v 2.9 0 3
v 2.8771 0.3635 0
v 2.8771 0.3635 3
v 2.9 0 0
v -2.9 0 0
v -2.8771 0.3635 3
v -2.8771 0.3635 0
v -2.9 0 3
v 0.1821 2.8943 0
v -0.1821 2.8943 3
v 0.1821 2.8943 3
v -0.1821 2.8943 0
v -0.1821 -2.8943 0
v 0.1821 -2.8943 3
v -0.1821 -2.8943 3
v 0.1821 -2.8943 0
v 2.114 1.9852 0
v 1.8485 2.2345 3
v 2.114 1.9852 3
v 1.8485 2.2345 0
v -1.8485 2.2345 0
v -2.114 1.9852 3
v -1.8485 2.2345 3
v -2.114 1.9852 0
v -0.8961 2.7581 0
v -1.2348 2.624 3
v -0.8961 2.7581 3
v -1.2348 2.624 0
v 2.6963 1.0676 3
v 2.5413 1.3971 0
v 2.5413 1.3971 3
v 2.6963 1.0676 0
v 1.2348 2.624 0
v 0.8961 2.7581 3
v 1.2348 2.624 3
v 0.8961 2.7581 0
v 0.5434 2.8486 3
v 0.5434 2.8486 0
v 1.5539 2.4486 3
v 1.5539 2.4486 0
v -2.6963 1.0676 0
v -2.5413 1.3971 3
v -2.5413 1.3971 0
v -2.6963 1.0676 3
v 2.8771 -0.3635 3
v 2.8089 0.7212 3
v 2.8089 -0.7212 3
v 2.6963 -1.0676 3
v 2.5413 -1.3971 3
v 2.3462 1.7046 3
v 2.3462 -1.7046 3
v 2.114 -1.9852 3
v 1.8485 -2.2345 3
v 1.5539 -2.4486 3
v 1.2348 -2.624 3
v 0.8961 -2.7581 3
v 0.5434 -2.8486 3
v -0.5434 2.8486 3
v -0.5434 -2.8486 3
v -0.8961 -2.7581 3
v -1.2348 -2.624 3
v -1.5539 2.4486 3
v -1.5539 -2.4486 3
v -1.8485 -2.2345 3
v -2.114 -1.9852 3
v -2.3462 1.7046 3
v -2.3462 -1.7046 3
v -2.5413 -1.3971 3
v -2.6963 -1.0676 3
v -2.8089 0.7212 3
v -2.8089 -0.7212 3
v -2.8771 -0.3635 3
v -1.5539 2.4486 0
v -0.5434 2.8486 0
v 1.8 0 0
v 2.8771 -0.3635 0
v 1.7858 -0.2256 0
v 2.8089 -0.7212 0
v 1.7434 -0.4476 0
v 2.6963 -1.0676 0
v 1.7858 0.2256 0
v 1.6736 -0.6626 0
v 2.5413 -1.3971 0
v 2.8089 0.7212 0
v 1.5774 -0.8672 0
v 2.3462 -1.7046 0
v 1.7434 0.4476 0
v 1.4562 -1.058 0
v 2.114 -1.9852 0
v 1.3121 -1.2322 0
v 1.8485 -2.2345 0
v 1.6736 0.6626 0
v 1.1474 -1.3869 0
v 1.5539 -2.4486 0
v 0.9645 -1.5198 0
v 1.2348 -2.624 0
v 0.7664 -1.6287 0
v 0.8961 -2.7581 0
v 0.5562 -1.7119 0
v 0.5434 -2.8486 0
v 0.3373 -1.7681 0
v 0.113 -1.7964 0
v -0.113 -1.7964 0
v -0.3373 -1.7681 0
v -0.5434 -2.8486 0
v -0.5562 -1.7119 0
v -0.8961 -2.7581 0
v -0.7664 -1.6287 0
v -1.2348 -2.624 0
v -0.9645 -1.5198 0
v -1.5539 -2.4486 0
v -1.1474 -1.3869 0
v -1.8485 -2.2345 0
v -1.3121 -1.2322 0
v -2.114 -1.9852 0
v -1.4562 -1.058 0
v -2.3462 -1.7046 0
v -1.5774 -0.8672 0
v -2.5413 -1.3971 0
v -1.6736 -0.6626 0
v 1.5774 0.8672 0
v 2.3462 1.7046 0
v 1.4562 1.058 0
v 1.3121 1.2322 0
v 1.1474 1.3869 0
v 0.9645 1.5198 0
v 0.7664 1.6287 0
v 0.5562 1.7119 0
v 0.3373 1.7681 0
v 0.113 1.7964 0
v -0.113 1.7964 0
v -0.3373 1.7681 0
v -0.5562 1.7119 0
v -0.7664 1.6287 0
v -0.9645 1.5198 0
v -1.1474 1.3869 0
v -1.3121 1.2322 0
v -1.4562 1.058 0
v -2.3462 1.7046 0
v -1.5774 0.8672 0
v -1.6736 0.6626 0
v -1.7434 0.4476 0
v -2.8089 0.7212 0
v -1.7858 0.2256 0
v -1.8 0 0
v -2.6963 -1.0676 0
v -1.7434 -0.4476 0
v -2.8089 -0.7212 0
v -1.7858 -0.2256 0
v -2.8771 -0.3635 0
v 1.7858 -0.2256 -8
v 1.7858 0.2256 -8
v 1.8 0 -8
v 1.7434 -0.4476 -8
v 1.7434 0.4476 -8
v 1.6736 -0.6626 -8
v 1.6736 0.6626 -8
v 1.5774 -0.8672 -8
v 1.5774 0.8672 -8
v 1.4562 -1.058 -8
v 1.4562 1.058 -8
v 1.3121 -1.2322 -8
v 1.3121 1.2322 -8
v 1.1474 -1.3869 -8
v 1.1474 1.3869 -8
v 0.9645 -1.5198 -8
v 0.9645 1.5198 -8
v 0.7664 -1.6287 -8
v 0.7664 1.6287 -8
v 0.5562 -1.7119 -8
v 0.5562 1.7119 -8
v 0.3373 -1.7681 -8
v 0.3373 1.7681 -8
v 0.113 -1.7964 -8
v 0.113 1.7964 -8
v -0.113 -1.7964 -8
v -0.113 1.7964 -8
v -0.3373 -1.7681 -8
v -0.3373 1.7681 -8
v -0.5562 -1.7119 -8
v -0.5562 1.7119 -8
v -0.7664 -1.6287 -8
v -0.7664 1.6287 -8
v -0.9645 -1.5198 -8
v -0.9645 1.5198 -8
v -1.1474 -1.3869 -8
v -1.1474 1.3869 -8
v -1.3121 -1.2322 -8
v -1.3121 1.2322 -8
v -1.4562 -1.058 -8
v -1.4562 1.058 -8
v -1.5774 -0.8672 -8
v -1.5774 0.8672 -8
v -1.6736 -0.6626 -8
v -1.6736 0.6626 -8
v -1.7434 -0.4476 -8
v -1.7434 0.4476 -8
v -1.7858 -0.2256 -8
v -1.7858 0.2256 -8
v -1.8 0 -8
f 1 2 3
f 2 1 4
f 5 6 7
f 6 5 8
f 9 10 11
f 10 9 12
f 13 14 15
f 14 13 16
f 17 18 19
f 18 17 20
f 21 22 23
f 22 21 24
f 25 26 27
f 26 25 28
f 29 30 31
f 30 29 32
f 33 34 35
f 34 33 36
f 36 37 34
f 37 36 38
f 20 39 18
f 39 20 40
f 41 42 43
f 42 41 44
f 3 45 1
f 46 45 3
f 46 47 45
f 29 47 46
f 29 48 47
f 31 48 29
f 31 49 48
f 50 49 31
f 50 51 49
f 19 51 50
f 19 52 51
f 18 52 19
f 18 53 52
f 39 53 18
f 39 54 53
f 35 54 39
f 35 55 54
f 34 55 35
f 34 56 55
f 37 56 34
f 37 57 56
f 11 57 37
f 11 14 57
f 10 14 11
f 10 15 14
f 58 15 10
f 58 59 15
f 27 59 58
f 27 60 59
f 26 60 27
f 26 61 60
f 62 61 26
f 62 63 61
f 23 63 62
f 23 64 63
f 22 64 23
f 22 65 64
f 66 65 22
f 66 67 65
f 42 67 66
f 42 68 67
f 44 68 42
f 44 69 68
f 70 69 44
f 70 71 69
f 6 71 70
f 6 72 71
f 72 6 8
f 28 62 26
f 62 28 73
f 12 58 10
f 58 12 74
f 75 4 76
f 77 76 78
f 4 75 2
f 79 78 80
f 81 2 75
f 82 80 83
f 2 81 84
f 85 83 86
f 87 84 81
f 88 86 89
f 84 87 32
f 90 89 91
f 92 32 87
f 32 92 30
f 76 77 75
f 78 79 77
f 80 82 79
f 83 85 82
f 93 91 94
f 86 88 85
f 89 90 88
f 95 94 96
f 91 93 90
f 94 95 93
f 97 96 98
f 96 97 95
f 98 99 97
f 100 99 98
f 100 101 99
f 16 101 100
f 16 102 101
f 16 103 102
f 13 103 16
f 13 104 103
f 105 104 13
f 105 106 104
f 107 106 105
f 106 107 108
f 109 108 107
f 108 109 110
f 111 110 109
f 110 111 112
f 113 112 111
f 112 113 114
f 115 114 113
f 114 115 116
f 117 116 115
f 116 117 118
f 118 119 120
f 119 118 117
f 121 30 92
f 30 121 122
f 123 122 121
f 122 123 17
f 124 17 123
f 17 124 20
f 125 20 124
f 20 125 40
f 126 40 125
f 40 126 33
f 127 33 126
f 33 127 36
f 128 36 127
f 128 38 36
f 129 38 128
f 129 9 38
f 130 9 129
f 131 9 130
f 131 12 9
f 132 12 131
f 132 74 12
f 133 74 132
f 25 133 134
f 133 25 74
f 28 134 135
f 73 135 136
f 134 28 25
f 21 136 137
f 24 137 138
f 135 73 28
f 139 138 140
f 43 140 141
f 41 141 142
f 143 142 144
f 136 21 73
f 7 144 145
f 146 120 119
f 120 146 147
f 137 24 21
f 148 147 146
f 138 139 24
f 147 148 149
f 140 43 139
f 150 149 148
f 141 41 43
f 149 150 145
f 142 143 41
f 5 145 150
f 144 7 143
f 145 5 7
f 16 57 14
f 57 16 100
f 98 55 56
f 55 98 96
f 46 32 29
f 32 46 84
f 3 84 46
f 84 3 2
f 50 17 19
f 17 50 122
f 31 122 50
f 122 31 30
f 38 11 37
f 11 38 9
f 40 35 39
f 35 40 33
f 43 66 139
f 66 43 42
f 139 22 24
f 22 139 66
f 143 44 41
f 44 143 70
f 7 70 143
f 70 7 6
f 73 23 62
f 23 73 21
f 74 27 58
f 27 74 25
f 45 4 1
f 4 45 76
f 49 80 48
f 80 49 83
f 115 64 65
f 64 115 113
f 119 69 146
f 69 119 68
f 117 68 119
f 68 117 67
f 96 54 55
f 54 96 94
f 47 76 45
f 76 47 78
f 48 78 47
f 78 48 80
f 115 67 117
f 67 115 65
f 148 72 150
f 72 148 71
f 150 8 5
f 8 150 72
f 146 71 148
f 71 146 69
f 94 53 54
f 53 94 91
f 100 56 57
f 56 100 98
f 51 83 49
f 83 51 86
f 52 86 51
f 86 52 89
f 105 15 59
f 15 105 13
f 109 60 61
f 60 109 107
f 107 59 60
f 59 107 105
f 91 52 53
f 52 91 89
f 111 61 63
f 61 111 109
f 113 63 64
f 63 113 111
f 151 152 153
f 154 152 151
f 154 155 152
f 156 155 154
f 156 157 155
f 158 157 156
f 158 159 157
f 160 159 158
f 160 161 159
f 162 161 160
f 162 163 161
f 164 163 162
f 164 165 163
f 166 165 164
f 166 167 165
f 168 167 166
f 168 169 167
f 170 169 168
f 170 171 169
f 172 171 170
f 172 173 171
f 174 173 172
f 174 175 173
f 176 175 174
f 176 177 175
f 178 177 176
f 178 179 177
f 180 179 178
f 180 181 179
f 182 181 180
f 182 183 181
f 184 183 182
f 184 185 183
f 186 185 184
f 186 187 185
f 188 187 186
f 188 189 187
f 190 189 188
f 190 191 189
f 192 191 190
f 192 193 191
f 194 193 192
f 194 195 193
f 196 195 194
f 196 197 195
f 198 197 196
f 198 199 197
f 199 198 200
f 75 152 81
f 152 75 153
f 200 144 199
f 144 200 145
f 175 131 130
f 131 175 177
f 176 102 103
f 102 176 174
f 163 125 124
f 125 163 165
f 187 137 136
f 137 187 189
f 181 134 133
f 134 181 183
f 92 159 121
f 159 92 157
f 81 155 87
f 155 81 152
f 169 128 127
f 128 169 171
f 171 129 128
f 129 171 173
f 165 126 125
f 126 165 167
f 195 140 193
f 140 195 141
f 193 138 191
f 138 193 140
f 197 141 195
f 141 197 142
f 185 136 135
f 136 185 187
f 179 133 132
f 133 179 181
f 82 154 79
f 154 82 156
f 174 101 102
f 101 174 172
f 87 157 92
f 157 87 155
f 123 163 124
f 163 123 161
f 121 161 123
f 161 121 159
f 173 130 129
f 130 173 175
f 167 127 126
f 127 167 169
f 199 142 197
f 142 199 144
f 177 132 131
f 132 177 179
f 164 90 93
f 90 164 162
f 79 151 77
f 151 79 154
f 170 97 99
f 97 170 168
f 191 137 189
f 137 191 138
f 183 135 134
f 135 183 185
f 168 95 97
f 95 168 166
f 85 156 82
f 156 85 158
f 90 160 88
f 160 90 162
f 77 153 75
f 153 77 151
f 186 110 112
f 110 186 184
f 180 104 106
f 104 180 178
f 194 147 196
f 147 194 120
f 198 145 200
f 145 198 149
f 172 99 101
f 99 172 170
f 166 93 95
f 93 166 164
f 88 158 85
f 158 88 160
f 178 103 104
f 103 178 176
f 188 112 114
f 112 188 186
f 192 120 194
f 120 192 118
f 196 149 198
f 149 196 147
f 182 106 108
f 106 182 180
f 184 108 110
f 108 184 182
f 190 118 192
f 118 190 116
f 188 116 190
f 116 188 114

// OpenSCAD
$fn = 50;


difference() {
	union() {
		translate(v = [0, 0, 0]) {
			rotate(a = [0, 0, 0]) {
				difference() {
					union() {
						cylinder(h = 3, r = 2.9000000000);
						translate(v = [0, 0, -8.0000000000]) {
							cylinder(h = 8, r = 1.5000000000);
						}
						translate(v = [0, 0, -8.0000000000]) {
							cylinder(h = 8, r = 1.8000000000);
						}
						translate(v = [0, 0, -8.0000000000]) {
							cylinder(h = 8, r = 1.5000000000);
						}
					}
					union();
				}
			}
		}
	}
	union();
}
